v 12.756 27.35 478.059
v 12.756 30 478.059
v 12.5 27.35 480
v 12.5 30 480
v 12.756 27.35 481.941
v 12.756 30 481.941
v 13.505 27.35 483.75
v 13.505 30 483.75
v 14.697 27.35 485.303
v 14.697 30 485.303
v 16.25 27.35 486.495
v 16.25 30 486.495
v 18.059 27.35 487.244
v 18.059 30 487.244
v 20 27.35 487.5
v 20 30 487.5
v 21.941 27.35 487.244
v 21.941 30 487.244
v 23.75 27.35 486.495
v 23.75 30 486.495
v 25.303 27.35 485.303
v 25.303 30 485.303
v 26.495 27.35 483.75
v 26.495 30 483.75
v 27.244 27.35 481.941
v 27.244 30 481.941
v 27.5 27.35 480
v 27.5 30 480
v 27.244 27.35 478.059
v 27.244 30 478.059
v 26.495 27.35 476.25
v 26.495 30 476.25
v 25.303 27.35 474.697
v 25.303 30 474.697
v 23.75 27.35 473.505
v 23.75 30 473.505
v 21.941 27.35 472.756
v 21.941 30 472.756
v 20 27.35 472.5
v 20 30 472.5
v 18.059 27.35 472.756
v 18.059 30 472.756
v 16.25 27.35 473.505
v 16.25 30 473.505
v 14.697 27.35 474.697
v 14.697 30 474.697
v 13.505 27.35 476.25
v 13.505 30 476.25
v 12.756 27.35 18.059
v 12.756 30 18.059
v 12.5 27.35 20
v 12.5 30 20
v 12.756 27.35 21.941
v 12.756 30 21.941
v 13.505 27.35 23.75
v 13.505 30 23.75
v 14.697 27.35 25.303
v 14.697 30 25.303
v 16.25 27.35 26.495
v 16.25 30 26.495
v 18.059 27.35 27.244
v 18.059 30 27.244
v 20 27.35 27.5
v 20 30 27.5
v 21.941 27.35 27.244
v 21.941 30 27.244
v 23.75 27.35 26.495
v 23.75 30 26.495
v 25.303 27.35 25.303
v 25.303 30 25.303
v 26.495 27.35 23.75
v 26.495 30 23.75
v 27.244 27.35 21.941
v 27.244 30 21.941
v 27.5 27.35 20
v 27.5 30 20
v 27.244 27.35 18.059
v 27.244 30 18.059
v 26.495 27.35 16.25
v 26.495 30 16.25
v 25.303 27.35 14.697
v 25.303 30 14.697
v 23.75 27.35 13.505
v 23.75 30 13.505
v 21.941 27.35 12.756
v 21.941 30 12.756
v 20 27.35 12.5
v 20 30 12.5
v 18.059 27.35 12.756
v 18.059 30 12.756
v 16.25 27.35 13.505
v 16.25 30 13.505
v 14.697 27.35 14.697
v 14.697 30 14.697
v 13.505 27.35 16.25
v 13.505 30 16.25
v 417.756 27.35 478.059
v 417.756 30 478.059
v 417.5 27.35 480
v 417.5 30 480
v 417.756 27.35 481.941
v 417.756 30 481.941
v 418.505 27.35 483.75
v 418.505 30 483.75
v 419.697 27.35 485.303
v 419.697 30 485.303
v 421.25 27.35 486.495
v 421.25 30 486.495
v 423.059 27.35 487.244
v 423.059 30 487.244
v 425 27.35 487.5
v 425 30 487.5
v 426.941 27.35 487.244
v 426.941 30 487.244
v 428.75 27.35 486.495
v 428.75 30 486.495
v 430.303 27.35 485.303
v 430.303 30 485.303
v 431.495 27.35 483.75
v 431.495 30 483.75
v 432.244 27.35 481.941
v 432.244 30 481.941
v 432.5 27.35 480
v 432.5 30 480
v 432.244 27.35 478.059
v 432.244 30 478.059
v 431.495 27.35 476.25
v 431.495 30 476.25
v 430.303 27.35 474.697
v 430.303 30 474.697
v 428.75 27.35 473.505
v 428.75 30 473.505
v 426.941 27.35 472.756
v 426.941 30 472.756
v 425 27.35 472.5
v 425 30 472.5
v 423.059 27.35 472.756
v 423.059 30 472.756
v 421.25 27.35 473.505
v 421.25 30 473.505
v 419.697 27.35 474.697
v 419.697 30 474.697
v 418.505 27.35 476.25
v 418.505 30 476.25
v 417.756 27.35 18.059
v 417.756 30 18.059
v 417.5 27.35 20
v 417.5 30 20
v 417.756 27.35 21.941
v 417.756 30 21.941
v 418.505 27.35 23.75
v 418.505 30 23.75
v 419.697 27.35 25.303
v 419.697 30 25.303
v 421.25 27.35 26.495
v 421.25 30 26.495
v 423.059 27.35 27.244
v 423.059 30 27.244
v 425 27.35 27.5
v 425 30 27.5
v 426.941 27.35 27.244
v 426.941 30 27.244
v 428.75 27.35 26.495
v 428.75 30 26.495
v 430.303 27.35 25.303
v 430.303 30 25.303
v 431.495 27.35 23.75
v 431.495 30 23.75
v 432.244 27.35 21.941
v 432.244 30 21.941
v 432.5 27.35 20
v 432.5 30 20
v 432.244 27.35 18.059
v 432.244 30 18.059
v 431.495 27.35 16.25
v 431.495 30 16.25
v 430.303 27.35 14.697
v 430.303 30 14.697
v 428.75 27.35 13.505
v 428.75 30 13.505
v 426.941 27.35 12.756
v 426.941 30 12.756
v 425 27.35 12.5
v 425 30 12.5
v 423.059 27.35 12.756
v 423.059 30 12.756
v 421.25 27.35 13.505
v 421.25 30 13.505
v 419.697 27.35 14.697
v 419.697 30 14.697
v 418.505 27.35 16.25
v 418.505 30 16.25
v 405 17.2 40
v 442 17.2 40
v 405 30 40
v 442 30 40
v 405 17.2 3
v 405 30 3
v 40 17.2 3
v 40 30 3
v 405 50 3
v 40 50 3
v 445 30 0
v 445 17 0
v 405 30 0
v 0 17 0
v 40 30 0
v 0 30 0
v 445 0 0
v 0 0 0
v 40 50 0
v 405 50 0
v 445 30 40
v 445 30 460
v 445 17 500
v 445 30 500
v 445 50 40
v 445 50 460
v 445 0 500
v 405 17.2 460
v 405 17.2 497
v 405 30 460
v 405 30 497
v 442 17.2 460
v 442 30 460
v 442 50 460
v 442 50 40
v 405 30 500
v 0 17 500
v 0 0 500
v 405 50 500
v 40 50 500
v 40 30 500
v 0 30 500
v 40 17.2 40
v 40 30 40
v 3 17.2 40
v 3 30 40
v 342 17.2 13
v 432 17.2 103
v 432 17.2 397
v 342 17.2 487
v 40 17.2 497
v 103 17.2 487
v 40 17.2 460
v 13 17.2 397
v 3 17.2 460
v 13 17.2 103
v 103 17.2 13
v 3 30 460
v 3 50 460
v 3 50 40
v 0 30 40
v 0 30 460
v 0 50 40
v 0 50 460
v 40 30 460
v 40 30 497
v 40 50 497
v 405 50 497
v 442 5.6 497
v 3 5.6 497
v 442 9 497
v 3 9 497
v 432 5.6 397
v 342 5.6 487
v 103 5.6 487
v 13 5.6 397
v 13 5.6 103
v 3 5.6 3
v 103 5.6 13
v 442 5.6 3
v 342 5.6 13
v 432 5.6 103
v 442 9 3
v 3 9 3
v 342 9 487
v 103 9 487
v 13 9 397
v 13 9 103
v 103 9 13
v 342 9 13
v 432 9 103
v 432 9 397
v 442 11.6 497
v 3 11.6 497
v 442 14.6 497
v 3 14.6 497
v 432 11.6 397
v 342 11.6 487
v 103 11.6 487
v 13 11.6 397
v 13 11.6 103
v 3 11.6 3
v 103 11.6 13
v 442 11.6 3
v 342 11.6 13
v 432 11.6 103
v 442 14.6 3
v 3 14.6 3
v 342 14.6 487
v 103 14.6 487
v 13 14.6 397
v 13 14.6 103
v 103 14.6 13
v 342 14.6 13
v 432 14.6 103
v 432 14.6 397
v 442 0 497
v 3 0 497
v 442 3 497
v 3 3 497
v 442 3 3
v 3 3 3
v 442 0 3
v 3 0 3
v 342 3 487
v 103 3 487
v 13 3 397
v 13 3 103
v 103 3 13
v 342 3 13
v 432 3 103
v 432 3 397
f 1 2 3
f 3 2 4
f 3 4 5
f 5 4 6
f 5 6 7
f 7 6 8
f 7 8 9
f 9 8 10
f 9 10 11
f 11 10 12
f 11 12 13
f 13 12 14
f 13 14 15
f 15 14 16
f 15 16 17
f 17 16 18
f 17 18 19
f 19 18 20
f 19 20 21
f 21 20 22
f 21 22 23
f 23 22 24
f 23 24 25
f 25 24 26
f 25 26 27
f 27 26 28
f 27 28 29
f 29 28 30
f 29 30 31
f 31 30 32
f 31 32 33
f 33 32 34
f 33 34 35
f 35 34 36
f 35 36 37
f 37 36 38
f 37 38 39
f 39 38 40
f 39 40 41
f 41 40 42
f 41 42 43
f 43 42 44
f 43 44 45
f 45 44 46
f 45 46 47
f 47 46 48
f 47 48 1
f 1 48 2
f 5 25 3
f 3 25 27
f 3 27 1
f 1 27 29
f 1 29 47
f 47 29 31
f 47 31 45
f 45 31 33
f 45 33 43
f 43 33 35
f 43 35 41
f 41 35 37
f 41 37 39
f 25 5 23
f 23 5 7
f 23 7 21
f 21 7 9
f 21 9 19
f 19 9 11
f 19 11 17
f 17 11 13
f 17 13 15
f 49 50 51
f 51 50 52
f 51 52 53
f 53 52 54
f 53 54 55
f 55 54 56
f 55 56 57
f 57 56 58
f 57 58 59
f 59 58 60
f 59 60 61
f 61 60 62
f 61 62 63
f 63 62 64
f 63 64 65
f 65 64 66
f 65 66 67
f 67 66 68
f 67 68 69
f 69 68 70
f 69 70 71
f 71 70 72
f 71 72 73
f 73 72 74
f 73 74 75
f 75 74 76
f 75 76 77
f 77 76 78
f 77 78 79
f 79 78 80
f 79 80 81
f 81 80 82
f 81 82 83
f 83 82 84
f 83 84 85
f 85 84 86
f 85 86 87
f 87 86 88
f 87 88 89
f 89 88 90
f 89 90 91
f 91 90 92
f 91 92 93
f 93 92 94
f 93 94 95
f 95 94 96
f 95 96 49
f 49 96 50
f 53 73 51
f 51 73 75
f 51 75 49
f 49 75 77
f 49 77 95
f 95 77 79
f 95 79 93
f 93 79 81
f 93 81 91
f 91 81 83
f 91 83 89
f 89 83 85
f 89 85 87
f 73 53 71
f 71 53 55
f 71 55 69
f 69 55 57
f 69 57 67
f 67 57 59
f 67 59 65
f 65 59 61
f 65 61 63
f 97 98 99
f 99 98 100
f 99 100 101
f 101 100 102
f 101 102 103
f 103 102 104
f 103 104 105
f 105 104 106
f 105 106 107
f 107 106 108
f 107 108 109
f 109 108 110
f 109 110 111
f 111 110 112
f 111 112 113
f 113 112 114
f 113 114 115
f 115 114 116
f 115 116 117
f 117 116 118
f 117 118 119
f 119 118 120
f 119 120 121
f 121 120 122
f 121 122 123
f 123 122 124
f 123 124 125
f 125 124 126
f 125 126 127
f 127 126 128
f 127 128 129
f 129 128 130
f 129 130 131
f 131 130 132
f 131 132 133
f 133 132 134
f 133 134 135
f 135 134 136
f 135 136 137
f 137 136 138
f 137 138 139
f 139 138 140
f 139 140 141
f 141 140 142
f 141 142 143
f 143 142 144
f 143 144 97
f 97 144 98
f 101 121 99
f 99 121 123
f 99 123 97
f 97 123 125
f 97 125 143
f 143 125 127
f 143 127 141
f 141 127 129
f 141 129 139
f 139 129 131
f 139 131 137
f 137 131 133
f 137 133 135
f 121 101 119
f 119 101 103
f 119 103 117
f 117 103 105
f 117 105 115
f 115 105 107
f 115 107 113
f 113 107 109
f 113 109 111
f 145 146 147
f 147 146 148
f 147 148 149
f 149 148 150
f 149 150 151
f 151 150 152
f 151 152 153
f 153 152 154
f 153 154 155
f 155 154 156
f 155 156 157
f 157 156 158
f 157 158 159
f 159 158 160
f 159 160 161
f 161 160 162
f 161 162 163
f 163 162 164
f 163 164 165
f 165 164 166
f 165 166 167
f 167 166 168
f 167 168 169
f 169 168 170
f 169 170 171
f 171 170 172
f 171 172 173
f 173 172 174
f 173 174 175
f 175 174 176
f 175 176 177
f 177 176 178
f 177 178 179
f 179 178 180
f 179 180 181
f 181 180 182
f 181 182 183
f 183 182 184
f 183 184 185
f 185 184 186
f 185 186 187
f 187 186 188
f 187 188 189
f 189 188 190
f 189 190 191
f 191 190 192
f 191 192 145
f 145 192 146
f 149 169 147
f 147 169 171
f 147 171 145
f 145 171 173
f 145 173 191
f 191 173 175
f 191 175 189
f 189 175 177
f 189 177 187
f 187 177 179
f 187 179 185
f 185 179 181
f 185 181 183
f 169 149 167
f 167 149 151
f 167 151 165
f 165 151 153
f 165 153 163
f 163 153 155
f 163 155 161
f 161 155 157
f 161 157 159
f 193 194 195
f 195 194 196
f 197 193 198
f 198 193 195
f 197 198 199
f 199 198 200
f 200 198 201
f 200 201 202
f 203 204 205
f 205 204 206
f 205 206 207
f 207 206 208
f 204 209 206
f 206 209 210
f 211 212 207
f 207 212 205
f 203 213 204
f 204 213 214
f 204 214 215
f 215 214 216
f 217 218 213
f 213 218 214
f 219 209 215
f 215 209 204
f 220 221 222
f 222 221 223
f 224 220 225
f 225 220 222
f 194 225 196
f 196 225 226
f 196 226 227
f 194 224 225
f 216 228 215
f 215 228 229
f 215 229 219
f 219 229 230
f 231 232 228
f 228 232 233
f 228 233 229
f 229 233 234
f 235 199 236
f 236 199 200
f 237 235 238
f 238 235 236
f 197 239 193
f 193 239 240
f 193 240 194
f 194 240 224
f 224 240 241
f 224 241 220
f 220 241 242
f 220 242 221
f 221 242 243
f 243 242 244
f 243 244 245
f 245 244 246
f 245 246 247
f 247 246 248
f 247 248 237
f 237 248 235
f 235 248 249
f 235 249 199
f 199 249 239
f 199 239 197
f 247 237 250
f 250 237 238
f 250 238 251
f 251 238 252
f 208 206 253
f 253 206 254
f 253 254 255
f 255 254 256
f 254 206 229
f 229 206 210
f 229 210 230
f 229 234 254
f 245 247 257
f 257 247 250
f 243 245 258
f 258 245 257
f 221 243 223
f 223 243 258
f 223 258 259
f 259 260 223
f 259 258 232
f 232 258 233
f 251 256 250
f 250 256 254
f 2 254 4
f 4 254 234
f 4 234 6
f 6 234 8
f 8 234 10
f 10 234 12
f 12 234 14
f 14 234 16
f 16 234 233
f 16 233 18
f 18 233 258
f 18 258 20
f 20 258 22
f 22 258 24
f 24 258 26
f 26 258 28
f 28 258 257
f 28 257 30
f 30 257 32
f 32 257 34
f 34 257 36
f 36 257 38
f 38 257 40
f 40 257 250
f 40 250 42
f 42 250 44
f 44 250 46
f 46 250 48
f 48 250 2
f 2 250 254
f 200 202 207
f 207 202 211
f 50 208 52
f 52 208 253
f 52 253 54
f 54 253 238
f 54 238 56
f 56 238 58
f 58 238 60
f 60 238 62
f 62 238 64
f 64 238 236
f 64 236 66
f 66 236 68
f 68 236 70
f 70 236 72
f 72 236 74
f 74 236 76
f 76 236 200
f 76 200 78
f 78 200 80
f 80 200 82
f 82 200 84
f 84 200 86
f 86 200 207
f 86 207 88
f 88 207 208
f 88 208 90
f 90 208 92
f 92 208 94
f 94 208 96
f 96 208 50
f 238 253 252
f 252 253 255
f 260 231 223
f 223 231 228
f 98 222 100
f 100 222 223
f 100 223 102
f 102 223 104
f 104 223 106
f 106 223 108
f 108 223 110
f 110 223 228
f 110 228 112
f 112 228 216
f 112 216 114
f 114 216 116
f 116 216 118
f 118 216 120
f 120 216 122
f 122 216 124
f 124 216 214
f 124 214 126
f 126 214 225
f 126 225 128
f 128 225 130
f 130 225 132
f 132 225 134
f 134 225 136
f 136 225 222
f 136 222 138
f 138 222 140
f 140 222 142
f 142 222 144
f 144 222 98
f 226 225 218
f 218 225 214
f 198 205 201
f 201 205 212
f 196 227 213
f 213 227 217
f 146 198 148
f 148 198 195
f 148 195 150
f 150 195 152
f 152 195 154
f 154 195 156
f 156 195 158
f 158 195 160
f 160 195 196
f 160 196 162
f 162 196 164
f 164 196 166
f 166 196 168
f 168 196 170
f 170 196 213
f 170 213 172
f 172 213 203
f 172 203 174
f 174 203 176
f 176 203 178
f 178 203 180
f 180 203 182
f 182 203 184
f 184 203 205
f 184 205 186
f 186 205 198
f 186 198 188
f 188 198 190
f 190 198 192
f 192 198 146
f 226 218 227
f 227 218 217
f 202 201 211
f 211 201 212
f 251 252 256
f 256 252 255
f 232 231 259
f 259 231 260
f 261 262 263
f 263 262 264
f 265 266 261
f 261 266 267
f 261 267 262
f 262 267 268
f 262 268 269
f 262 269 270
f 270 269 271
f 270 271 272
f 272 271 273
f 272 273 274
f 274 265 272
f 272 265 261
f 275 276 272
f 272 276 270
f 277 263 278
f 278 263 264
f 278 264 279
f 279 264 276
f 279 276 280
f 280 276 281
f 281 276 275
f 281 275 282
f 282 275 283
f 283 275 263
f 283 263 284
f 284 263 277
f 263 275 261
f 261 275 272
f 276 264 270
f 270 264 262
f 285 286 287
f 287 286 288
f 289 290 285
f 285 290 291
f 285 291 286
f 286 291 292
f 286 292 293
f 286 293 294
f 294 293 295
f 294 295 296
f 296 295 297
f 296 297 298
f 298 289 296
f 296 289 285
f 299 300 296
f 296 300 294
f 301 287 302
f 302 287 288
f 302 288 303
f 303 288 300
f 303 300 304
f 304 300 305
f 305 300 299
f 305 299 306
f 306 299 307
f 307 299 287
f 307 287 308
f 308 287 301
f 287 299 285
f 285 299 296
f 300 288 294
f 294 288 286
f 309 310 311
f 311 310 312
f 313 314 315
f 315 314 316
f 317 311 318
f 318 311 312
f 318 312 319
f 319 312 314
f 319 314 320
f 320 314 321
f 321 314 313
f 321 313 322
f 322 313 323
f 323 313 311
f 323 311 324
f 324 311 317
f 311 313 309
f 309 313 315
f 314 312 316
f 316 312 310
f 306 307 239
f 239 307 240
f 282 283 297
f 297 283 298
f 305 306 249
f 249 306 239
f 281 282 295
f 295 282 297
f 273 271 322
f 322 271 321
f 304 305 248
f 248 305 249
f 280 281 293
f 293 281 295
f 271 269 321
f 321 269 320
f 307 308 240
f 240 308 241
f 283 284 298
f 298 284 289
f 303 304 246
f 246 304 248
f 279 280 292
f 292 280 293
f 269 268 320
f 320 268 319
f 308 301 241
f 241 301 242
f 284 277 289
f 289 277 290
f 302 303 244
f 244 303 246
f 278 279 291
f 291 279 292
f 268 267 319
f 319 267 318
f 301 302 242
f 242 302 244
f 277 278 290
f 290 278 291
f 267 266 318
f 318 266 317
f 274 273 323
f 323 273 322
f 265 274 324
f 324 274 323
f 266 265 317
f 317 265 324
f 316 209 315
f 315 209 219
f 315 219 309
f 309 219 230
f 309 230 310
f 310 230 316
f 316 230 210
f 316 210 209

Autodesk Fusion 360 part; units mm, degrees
sketch "Sketch1" plane through (0, 0, 0) normal (0, 1, 0) x (1, 0, 0)
  line L0 (0, 0) -> (445, 0)
  line L1 (445, 0) -> (445, -500)
  line L2 (445, -500) -> (0, -500)
  line L3 (0, -500) -> (0, 0)
  dimension "d1" = 445
  dimension "d2" = 500
extrude "Extrude1" add sketch "Sketch1" along normal blind 50
ref_plane "WorkPlane1" through (222.5, 0, 250) normal (0, -1, 0) x (-1, 0, 0)
sketch "Sketch2" plane through (222.5, 0, 250) normal (0, -1, 0) x (1, 0, 0)
  line L0 (222.5, 250) -> (119.5, 250)
  line L1 (119.5, 250) -> (119.5, 237)
  line L2 (119.5, 237) -> (222.5, 237)
  line L3 (222.5, 237) -> (222.5, 250)
  line L4 (222.5, 250) -> (209.5, 250)
  line L5 (209.5, 250) -> (209.5, 147)
  line L6 (209.5, 147) -> (222.5, 147)
  line L7 (222.5, 147) -> (222.5, 250)
  line L8 (119.5, 237) -> (209.5, 147)
  line L9 (209.5, 237) -> (119.5, 237)
  line L10 (-222.5, 250) -> (-119.5, 250)
  line L11 (-119.5, 250) -> (-119.5, 237)
  line L12 (-119.5, 237) -> (-222.5, 237)
  line L13 (-222.5, 237) -> (-222.5, 250)
  line L14 (-222.5, 250) -> (-209.5, 250)
  line L15 (-209.5, 250) -> (-209.5, 147)
  line L16 (-209.5, 147) -> (-222.5, 147)
  line L17 (-222.5, 147) -> (-222.5, 250)
  line L18 (-222.5, -250) -> (-119.5, -250)
  line L19 (-119.5, -250) -> (-119.5, -237)
  line L20 (-119.5, -237) -> (-222.5, -237)
  line L21 (-222.5, -237) -> (-222.5, -250)
  line L22 (-222.5, -250) -> (-209.5, -250)
  line L23 (-209.5, -250) -> (-209.5, -147)
  line L24 (-209.5, -147) -> (-222.5, -147)
  line L25 (-222.5, -147) -> (-222.5, -250)
  line L26 (222.5, -250) -> (209.5, -250)
  line L27 (209.5, -250) -> (209.5, -147)
  line L28 (209.5, -147) -> (222.5, -147)
  line L29 (222.5, -147) -> (222.5, -250)
  line L30 (222.5, -250) -> (119.5, -250)
  line L31 (119.5, -250) -> (119.5, -237)
  line L32 (119.5, -237) -> (222.5, -237)
  line L33 (222.5, -237) -> (222.5, -250)
  line L34 (119.5, -237) -> (209.5, -147)
  line L35 (209.5, 147) -> (119.5, 237)
  line L36 (-119.5, 237) -> (-209.5, 147)
  line L37 (-209.5, -147) -> (-119.5, -237)
  line L38 (-209.5, 147) -> (-209.5, -147)
  line L39 (-119.5, -237) -> (119.5, -237)
  line L40 (209.5, 147) -> (209.5, -147)
  line L41 (119.5, 237) -> (-119.5, 237)
  dimension "d6" = 103
  dimension "d7" = 13
  dimension "d8" = 13
  dimension "d9" = 103
  dimension "d10" = 103
  dimension "d11" = 13
  dimension "d12" = 13
  dimension "d13" = 103
  dimension "d14" = 103
  dimension "d15" = 13
  dimension "d16" = 13
  dimension "d17" = 103
  dimension "d18" = 13
  dimension "d19" = 103
  dimension "d20" = 103
  dimension "d21" = 13
extrude "Extrude2" cut sketch "Sketch2" against normal blind 50 contours L8 L34 L35 L36 L37 L38 L39 L40 L41
ref_plane "WorkPlane2" through (442, 25, 250) normal (1, 0, 0) x (0, 0, -1)
sketch "Sketch3" plane through (442, 25, 250) normal (1, 0, 0) x (0, 1, 0)
  line L0 (-25, -250) -> (25, -250)
  line L1 (25, -250) -> (25, -247)
  line L2 (25, -247) -> (-25, -247)
  line L3 (-25, -247) -> (-25, -250)
  line L4 (-25, 250) -> (25, 250)
  line L5 (25, 250) -> (25, 247)
  line L6 (25, 247) -> (-25, 247)
  line L7 (-25, 247) -> (-25, 250)
  line L8 (-25, 247) -> (-22, 247)
  line L9 (-22, 247) -> (-22, -247)
  line L10 (-22, -247) -> (-25, -247)
  line L11 (-25, -247) -> (-25, 247)
  line L12 (-22, 247) -> (-19.4, 247)
  line L13 (-19.4, 247) -> (-19.4, 220.835)
  line L14 (-19.4, 220.835) -> (-22, 220.835)
  line L15 (-22, 220.835) -> (-22, 247)
  line L16 (-19.4, 247) -> (-16, 247)
  line L17 (-16, 247) -> (-16, -247)
  line L18 (-16, -247) -> (-19.4, -247)
  line L19 (-19.4, -247) -> (-19.4, 247)
  line L20 (-16, 247) -> (-13.4, 247)
  line L21 (-13.4, 247) -> (-13.4, 220.8212)
  line L22 (-13.4, 220.8212) -> (-16, 220.8212)
  line L23 (-16, 220.8212) -> (-16, 247)
  line L24 (-13.4, 247) -> (-10.4, 247)
  line L25 (-10.4, 247) -> (-10.4, -247)
  line L26 (-10.4, -247) -> (-13.4, -247)
  line L27 (-13.4, -247) -> (-13.4, 247)
  line L28 (-10.4, 247) -> (-7.8, 247)
  line L29 (-7.8, 247) -> (-7.8, 220.1918)
  line L30 (-7.8, 220.1918) -> (-10.4, 220.1918)
  line L31 (-10.4, 220.1918) -> (-10.4, 247)
  line L32 (-7.8, 247) -> (25, 247)
  line L33 (25, 247) -> (25, -247)
  line L34 (25, -247) -> (-7.8, -247)
  line L35 (-7.8, -247) -> (-7.8, 247)
  dimension "d25" = 3
  dimension "d26" = 50
  dimension "d27" = 3
  dimension "d28" = 3
  dimension "d29" = 2.6
  dimension "d30" = 3.4
  dimension "d31" = 2.6
  dimension "d32" = 3
  dimension "d33" = 2.6
extrude "Extrude3" cut sketch "Sketch3" against normal blind 439 contours L2 L6 L8 L9 L10 L11 L15 | L2 L6 L29 L32 L33 L34 L35 | L2 L6 L13 L16 L17 L18 L19 L23 | L2 L6 L21 L24 L25 L26 L27 L31
ref_plane "WorkPlane3" through (222.5, 50, 250) normal (0, 1, 0) x (0, 0, 1)
sketch "Sketch4" plane through (222.5, 50, 250) normal (0, 1, 0) x (1, 0, 0)
  line L0 (222.5, -250) -> (182.5, -250)
  line L1 (182.5, -250) -> (182.5, -210)
  line L2 (182.5, -210) -> (222.5, -210)
  line L3 (222.5, -210) -> (222.5, -250)
  line L4 (-222.5, -250) -> (-182.5, -250)
  line L5 (-182.5, -250) -> (-182.5, -210)
  line L6 (-182.5, -210) -> (-222.5, -210)
  line L7 (-222.5, -210) -> (-222.5, -250)
  line L8 (-222.5, 250) -> (-182.5, 250)
  line L9 (-182.5, 250) -> (-182.5, 210)
  line L10 (-182.5, 210) -> (-222.5, 210)
  line L11 (-222.5, 210) -> (-222.5, 250)
  line L12 (222.5, 250) -> (182.5, 250)
  line L13 (182.5, 250) -> (182.5, 210)
  line L14 (182.5, 210) -> (222.5, 210)
  line L15 (222.5, 210) -> (222.5, 250)
  dimension "d37" = 40
  dimension "d38" = 40
  dimension "d39" = 40
  dimension "d40" = 40
  dimension "d41" = 40
  dimension "d42" = 40
  dimension "d43" = 40
  dimension "d44" = 40
extrude "Extrude4" cut sketch "Sketch4" against normal blind 20
ref_plane "WorkPlane4" through (425, 30, 20) normal (0, 1, 0) x (0, 0, 1)
sketch "Sketch5" plane through (425, 30, 20) normal (0, 1, 0) x (1, 0, 0)
  line L0 (20, 20) -> (-20, 20)
  line L1 (-20, 20) -> (-20, -20)
  line L2 (-20, -20) -> (20, -20)
  line L3 (20, -20) -> (20, 20)
  line L4 (-425, 20) -> (-385, 20)
  line L5 (-385, 20) -> (-385, -20)
  line L6 (-385, -20) -> (-425, -20)
  line L7 (-425, -20) -> (-425, 20)
  line L8 (-425, -480) -> (-385, -480)
  line L9 (-385, -480) -> (-385, -440)
  line L10 (-385, -440) -> (-425, -440)
  line L11 (-425, -440) -> (-425, -480)
  line L12 (20, -480) -> (-20, -480)
  line L13 (-20, -480) -> (-20, -440)
  line L14 (-20, -440) -> (20, -440)
  line L15 (20, -440) -> (20, -480)
  dimension "d48" = 40
  dimension "d49" = 40
  dimension "d50" = 40
  dimension "d51" = 40
  dimension "d52" = 40
  dimension "d53" = 40
  dimension "d54" = 40
  dimension "d55" = 40
extrude "Extrude5" add sketch "Sketch5" against normal blind 13
ref_plane "WorkPlane5" through (222.5, 3, 250) normal (0, -1, 0) x (0, 0, 1)
sketch "Sketch6" plane through (222.5, 3, 250) normal (0, -1, 0) x (1, 0, 0)
ref_plane "WorkPlane6" through (425, 30, 480) normal (0, 1, 0) x (0, 0, 1)
sketch "Sketch7" plane through (425, 30, 480) normal (0, 1, 0) x (1, 0, 0)
  line L0 (20, -20) -> (0, -20)
  line L1 (0, -20) -> (0, 0)
  line L2 (0, 0) -> (20, 0)
  line L3 (20, 0) -> (20, -20)
  circle A0 centre (0, 0) radius 7.5
  line L4 (-425, -20) -> (-405, -20)
  line L5 (-405, -20) -> (-405, 0)
  line L6 (-405, 0) -> (-425, 0)
  line L7 (-425, 0) -> (-425, -20)
  circle A1 centre (-405, 0) radius 7.5
  line L8 (-425, 480) -> (-405, 480)
  line L9 (-405, 480) -> (-405, 460)
  line L10 (-405, 460) -> (-425, 460)
  line L11 (-425, 460) -> (-425, 480)
  circle A2 centre (-405, 460) radius 7.5
  line L12 (20, 480) -> (0, 480)
  line L13 (0, 480) -> (0, 460)
  line L14 (0, 460) -> (20, 460)
  line L15 (20, 460) -> (20, 480)
  circle A3 centre (0, 460) radius 7.5
  dimension "d60" = 20
  dimension "d61" = 20
  dimension "d62" = 15
  dimension "d63" = 20
  dimension "d64" = 20
  dimension "d65" = 15
  dimension "d66" = 20
  dimension "d67" = 20
  dimension "d68" = 15
  dimension "d69" = 20
  dimension "d70" = 20
  dimension "d71" = 15
extrude "Extrude6" cut sketch "Sketch7" against normal blind 2.65 contours L1 L2 A0 | L1 L2 A0 | L5 L6 A1 | L5 L6 A1 | L9 L10 A2 | L9 L10 A2 | L13 L14 A3 | L13 L14 A3
